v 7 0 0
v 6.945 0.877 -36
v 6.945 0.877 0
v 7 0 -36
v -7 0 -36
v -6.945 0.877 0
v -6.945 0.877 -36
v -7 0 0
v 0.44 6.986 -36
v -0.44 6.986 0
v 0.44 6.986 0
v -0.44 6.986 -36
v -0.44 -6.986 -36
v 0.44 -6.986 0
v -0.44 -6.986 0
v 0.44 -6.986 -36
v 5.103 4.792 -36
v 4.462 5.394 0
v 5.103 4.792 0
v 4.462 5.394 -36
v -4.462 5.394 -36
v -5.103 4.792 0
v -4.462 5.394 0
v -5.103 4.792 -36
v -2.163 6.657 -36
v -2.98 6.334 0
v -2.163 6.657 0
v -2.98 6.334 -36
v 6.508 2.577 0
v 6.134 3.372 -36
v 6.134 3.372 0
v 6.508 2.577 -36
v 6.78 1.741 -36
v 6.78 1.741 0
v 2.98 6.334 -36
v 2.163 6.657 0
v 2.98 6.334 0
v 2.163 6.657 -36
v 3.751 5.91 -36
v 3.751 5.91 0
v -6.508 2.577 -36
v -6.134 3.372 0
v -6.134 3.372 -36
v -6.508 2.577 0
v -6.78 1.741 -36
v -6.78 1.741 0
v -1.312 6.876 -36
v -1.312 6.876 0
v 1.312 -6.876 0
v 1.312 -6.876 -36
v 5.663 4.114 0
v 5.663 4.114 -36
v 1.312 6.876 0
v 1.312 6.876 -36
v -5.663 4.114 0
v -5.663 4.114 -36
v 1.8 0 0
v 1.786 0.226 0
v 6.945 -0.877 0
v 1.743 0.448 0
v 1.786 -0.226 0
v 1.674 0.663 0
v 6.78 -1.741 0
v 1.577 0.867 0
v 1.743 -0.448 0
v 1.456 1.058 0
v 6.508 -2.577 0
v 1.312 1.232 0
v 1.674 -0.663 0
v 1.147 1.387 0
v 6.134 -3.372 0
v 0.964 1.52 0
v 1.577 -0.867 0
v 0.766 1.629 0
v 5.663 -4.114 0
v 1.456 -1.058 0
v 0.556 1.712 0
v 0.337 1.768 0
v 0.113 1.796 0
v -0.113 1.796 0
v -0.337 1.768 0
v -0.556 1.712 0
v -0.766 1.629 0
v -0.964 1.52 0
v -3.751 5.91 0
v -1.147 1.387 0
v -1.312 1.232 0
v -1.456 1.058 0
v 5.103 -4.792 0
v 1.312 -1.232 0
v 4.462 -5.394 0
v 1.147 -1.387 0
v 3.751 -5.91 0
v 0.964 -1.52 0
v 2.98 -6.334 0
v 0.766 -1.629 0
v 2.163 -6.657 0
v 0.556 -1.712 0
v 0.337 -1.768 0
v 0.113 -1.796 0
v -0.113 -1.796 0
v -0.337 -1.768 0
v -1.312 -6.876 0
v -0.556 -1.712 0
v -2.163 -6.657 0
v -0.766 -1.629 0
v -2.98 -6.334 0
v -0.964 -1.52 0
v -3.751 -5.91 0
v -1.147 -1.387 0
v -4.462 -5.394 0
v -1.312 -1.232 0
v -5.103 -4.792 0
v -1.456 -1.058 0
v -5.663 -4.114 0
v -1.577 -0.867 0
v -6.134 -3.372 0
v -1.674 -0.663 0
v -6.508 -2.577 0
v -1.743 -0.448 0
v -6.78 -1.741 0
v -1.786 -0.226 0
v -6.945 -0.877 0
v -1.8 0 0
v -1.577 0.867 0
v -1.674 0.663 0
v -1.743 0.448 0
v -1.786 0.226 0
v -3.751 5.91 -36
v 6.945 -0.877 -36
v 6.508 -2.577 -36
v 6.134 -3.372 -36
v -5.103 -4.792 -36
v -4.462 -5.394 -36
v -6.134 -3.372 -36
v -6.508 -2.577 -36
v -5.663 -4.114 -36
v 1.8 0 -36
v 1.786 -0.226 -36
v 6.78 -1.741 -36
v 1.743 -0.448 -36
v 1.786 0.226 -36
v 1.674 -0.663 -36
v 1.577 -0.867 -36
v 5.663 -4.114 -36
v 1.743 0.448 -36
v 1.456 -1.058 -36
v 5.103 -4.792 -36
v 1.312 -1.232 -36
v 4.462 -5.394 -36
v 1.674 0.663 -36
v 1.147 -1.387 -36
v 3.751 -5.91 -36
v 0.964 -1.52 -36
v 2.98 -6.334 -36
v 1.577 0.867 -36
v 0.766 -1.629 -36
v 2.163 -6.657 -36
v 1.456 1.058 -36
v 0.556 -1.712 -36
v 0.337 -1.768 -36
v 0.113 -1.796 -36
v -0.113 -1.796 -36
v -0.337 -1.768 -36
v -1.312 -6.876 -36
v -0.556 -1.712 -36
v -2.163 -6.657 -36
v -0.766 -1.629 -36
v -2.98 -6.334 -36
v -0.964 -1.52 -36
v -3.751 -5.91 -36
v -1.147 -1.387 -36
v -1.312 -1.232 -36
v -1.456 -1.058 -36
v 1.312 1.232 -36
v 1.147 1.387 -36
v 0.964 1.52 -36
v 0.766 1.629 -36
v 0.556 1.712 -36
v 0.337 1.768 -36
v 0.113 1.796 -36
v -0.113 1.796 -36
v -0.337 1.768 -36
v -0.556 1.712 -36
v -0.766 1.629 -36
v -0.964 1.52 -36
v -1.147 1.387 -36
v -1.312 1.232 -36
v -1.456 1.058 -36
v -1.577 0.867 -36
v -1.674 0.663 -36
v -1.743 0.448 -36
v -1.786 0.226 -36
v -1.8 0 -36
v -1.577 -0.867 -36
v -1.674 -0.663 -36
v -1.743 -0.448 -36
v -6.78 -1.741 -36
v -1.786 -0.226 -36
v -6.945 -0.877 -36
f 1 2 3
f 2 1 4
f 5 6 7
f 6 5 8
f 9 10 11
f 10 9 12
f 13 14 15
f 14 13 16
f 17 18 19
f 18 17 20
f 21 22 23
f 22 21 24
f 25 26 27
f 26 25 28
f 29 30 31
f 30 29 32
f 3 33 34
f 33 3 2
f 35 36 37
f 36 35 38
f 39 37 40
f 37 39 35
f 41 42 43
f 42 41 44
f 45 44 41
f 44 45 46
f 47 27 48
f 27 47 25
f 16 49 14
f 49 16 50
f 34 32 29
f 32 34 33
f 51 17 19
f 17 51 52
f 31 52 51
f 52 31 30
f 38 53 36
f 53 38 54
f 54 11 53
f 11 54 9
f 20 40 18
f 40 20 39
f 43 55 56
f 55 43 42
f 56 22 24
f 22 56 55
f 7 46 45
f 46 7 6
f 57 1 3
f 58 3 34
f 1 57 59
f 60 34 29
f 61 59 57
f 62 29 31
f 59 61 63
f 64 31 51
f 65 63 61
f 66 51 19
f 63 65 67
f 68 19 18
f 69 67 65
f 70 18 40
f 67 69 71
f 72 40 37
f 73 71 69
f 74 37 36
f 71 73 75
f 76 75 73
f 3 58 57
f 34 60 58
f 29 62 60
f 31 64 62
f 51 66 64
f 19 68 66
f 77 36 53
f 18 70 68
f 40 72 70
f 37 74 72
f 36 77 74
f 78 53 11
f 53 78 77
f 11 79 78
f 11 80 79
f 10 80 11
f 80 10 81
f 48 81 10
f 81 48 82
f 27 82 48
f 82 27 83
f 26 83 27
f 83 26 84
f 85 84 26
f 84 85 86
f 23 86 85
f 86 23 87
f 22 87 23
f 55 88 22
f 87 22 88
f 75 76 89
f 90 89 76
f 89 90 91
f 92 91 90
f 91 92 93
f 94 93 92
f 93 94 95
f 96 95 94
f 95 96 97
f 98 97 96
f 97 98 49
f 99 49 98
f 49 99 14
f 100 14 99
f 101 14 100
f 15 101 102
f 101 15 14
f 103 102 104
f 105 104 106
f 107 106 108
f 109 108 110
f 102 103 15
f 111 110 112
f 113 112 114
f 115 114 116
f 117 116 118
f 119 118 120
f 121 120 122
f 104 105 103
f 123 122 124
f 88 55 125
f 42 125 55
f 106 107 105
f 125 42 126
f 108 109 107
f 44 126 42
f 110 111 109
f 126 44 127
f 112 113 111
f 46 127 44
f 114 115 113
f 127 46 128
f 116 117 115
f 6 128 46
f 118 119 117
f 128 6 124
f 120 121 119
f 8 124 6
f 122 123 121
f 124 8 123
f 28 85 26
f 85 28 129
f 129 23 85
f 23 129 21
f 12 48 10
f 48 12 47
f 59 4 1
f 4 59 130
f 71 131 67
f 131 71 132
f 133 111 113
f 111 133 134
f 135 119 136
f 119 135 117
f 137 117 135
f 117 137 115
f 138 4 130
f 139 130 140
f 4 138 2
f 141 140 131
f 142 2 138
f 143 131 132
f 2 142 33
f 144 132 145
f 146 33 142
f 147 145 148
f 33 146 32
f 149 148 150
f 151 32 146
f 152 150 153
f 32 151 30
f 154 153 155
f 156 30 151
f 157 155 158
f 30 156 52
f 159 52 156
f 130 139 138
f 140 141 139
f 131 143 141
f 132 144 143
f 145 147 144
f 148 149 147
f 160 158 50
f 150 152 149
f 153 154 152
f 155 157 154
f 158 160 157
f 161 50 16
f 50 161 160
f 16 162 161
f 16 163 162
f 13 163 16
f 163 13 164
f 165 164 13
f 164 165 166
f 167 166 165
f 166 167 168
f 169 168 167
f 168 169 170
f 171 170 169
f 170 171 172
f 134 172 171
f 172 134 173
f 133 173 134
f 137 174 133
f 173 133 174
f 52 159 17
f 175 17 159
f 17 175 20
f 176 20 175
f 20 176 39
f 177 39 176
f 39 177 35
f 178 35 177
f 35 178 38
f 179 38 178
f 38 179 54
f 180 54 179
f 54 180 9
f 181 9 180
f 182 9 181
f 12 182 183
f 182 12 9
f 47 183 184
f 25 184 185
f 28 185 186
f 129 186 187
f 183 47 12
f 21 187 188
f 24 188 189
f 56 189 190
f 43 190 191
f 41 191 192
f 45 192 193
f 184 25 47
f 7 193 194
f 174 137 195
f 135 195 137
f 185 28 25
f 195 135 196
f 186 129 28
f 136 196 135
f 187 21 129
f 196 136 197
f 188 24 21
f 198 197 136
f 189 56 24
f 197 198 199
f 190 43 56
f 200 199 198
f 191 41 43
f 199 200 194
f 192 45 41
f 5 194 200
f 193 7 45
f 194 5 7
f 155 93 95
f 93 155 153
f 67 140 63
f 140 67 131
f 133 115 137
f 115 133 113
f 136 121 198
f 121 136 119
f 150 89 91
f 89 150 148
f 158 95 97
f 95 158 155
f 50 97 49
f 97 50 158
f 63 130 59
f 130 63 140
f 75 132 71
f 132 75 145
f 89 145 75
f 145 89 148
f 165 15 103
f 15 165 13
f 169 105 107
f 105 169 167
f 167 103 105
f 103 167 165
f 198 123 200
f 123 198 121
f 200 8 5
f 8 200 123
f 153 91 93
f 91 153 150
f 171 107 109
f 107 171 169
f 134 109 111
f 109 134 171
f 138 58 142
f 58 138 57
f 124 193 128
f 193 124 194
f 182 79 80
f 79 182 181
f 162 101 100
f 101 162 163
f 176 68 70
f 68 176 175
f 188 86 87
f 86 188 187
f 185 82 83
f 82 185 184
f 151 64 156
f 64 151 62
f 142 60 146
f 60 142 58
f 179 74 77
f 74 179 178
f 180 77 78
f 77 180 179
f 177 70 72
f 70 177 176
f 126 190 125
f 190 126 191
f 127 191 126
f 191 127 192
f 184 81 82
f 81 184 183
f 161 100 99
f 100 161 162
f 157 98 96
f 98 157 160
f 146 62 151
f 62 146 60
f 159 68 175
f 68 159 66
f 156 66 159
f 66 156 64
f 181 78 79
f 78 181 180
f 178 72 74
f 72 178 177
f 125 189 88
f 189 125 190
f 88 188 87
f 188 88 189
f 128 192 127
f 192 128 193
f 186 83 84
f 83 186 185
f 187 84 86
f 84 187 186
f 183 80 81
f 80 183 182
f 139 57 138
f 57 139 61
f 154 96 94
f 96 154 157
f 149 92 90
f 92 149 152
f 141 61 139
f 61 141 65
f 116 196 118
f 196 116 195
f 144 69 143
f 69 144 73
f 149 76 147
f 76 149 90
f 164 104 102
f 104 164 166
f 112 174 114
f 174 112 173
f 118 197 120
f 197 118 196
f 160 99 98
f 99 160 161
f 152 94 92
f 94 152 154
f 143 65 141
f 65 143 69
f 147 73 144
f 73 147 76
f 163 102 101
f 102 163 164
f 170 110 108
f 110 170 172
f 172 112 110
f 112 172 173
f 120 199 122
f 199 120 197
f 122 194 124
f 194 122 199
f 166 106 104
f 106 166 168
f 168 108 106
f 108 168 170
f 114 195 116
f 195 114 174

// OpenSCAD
$fn = 50;


difference() {
	union() {
		translate(v = [0, 0, -36.0000000000]) {
			cylinder(h = 36, r = 7.0000000000);
		}
		cylinder(h = 0, r = 13.0000000000);
	}
	union() {
		#translate(v = [0, 0, -36]) {
			cylinder(h = 36, r = 1.8000000000);
		}
	}
}
